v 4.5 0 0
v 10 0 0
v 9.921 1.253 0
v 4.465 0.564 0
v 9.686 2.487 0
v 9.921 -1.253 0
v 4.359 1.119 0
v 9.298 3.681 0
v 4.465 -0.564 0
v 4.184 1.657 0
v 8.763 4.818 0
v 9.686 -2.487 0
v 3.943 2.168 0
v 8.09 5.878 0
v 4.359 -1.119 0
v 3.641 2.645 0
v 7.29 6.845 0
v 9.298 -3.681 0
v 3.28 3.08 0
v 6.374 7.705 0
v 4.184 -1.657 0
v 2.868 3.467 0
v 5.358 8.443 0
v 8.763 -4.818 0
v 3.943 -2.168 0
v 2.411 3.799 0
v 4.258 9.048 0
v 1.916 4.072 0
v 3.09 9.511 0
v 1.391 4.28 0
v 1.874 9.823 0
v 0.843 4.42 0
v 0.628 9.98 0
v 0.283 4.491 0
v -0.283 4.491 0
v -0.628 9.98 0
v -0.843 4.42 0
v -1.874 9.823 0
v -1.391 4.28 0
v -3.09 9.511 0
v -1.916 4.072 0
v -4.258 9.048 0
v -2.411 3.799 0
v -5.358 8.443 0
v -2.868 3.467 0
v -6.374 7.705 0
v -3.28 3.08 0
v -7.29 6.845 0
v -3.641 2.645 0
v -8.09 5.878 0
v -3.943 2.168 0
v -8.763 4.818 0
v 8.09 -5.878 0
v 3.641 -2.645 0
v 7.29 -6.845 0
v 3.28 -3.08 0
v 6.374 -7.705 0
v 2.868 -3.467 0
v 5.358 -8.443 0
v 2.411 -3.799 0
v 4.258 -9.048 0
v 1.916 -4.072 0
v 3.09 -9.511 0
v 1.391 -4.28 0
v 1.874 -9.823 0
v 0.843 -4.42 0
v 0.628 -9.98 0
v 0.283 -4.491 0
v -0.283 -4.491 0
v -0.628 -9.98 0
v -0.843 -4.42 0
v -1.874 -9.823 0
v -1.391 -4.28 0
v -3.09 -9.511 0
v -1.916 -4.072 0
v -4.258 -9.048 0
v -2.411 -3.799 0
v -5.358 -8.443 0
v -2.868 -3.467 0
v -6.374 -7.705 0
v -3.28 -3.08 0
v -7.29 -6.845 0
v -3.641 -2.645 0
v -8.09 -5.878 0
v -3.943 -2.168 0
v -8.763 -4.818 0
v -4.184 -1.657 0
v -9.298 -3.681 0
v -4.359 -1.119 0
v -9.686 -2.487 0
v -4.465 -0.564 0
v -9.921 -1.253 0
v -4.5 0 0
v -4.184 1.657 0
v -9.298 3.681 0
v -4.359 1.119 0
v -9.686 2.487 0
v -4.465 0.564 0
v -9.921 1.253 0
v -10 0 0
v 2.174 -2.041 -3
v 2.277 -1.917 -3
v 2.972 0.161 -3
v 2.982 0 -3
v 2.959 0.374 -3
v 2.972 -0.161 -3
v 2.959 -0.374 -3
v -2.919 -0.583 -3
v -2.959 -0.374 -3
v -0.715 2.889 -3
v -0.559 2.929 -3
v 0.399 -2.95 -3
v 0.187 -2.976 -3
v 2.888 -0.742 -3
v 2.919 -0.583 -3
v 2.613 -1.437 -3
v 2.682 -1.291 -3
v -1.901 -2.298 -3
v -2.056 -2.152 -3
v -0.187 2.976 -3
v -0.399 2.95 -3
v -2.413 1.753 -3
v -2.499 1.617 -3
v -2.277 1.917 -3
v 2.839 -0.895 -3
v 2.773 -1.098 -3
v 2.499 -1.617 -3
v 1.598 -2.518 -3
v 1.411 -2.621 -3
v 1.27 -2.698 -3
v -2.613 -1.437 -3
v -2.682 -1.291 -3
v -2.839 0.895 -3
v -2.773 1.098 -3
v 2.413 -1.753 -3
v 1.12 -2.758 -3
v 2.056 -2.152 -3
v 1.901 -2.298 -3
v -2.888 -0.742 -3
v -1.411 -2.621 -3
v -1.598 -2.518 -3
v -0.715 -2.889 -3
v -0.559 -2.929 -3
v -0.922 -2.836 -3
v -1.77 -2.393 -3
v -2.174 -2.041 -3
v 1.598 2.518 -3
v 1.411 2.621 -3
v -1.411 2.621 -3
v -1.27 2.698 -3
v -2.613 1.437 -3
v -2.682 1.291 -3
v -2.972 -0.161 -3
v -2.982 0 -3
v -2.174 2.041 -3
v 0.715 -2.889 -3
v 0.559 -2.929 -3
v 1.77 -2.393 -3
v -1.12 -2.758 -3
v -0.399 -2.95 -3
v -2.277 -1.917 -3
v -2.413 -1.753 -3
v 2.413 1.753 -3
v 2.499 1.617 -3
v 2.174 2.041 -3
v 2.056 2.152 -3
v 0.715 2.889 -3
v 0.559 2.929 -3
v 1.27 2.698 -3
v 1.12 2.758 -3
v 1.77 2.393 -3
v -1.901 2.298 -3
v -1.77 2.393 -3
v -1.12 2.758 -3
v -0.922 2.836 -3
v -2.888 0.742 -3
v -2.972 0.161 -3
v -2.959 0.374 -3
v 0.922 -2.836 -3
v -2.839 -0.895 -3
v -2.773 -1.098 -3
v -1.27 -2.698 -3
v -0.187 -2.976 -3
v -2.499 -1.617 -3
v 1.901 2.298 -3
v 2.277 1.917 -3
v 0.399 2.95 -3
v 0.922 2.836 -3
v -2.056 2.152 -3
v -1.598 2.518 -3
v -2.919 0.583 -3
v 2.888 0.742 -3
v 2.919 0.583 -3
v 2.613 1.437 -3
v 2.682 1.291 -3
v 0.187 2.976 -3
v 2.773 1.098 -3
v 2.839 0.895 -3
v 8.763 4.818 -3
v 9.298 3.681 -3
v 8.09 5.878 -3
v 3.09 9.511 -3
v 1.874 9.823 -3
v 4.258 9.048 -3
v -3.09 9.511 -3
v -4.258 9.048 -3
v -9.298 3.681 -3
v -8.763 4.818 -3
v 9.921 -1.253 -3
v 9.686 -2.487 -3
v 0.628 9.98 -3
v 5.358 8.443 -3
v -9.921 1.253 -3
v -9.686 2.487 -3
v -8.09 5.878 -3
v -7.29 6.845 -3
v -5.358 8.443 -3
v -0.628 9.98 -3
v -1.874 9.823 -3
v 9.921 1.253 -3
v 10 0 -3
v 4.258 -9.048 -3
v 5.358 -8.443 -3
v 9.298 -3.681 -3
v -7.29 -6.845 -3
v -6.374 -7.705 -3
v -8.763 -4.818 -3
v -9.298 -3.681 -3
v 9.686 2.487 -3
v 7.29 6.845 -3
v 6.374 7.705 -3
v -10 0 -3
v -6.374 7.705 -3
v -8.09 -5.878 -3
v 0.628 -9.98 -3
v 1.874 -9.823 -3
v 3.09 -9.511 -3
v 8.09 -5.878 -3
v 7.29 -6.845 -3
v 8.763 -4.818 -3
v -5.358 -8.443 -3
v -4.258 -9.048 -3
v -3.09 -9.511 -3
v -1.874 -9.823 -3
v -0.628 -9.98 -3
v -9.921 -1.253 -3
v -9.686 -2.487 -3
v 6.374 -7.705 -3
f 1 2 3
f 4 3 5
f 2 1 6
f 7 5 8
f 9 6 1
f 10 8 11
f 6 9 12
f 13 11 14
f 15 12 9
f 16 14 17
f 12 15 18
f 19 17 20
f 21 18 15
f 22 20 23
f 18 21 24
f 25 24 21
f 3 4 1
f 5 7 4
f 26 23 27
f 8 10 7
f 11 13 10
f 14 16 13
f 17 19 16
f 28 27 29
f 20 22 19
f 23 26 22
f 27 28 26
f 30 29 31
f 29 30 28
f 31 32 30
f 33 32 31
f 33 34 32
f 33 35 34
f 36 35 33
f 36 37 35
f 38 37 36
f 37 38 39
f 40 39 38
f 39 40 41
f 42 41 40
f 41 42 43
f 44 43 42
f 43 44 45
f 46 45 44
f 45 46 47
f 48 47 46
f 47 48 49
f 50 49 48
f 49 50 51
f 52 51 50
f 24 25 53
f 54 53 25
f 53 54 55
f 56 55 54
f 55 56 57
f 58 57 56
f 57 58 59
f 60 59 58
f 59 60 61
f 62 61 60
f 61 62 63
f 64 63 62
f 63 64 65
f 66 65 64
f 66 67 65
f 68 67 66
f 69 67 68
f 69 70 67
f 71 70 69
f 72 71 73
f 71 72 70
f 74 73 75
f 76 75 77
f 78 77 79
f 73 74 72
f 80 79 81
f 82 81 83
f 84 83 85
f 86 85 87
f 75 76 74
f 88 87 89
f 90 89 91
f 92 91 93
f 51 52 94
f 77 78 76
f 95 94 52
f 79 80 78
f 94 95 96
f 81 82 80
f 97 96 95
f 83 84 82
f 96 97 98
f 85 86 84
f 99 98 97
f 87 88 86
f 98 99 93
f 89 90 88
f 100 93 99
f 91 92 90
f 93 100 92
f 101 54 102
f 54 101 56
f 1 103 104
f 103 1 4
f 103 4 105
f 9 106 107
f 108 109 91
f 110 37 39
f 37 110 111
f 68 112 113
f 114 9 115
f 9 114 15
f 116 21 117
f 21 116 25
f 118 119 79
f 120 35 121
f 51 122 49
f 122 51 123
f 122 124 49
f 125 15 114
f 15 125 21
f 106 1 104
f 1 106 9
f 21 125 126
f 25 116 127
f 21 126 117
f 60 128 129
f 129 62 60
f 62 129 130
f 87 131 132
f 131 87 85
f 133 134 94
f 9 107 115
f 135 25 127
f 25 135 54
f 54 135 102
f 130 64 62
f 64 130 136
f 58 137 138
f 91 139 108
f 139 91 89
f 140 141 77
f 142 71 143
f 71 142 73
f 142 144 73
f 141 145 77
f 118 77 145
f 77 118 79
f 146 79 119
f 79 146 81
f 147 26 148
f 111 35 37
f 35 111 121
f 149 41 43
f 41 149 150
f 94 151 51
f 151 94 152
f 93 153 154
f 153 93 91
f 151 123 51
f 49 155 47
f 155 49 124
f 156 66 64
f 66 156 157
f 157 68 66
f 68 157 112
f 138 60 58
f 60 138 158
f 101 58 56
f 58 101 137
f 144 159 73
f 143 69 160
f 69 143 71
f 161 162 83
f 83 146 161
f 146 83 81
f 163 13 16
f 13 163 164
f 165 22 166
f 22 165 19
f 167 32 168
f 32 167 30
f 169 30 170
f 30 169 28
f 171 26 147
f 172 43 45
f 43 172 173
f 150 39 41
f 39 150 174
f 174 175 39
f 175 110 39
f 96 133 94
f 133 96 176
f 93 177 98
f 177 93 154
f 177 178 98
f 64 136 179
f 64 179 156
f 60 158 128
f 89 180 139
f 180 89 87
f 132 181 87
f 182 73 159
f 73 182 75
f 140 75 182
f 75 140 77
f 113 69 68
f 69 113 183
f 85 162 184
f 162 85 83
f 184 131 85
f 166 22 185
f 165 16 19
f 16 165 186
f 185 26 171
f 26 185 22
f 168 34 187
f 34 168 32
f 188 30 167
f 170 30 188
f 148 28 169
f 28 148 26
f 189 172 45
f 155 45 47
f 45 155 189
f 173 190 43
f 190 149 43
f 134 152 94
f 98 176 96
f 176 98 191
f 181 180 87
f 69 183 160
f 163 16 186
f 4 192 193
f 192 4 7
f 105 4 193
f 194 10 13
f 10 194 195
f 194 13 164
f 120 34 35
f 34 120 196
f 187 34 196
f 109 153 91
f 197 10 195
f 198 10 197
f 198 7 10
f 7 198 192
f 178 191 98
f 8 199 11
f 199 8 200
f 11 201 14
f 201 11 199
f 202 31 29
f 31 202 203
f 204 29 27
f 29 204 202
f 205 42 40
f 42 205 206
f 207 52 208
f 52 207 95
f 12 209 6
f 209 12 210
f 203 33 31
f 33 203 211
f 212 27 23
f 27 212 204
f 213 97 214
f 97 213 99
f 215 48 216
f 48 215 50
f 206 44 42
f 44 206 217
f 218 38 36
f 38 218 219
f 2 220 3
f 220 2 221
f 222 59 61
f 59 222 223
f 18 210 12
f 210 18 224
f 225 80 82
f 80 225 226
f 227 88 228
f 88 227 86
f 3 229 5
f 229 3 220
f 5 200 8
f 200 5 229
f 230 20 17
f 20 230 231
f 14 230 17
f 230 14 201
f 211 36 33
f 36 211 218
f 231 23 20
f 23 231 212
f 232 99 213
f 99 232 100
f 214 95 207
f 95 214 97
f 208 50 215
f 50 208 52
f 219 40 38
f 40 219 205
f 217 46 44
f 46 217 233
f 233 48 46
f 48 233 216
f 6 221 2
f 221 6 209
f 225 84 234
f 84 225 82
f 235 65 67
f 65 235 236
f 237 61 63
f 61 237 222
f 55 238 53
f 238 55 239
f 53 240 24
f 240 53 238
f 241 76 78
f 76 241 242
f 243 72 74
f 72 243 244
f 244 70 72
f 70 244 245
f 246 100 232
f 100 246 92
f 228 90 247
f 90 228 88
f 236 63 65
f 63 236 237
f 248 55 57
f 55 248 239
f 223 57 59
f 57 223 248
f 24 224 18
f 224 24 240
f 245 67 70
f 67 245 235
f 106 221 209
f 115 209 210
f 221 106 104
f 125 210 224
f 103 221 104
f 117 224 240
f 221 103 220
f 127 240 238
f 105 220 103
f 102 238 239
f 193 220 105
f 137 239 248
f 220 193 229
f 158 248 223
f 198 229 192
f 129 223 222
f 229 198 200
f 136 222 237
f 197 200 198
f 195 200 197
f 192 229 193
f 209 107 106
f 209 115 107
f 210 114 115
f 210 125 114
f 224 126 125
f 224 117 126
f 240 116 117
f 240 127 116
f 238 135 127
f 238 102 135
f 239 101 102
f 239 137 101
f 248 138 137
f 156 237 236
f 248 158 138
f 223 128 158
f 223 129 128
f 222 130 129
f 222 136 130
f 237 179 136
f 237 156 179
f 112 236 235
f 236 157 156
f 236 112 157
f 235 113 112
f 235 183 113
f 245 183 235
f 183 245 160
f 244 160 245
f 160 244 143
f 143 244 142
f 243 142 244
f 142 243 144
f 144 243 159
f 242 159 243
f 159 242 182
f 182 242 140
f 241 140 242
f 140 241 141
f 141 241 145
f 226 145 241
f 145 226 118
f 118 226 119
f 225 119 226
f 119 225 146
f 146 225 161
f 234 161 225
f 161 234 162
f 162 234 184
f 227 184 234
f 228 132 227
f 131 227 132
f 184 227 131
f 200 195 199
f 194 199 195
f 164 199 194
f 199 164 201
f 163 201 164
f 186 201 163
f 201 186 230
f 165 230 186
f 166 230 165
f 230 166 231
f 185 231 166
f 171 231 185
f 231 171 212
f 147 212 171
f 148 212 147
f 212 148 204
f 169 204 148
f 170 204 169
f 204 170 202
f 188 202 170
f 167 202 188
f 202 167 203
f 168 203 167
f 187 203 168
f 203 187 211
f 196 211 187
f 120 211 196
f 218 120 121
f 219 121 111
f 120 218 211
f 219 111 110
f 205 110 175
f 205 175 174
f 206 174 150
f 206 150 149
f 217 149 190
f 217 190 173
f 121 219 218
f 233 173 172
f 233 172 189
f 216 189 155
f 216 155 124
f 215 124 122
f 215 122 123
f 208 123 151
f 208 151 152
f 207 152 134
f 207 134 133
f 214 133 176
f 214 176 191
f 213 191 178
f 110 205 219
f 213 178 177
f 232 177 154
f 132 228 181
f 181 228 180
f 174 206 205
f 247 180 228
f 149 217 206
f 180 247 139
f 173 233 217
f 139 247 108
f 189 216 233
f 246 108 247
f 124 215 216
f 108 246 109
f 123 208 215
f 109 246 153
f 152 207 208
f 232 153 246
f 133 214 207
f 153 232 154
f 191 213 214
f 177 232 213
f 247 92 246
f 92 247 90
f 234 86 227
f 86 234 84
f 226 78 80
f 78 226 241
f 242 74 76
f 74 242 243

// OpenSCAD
$fn = 50;


difference() {
	union() {
		translate(v = [0, 0, -3.0000000000]) {
			cylinder(h = 3, r = 10.0000000000);
		}
	}
	union() {
		translate(v = [0, 0, 0]) {
			rotate(a = [0, 0, 0]) {
				difference() {
					union() {
						translate(v = [0, 0, -6.0000000000]) {
							cylinder(h = 6, r = 2.2500000000);
						}
						translate(v = [0, 0, -4.2000000000]) {
							cylinder(h = 4.2000000000, r1 = 2.3750000000, r2 = 4.5000000000);
						}
						translate(v = [0, 0, -6.0000000000]) {
							cylinder(h = 6, r = 2.3750000000);
						}
						translate(v = [0, 0, -6.0000000000]) {
							cylinder(h = 6, r = 2.2500000000);
						}
					}
					union();
				}
			}
		}
	}
}
